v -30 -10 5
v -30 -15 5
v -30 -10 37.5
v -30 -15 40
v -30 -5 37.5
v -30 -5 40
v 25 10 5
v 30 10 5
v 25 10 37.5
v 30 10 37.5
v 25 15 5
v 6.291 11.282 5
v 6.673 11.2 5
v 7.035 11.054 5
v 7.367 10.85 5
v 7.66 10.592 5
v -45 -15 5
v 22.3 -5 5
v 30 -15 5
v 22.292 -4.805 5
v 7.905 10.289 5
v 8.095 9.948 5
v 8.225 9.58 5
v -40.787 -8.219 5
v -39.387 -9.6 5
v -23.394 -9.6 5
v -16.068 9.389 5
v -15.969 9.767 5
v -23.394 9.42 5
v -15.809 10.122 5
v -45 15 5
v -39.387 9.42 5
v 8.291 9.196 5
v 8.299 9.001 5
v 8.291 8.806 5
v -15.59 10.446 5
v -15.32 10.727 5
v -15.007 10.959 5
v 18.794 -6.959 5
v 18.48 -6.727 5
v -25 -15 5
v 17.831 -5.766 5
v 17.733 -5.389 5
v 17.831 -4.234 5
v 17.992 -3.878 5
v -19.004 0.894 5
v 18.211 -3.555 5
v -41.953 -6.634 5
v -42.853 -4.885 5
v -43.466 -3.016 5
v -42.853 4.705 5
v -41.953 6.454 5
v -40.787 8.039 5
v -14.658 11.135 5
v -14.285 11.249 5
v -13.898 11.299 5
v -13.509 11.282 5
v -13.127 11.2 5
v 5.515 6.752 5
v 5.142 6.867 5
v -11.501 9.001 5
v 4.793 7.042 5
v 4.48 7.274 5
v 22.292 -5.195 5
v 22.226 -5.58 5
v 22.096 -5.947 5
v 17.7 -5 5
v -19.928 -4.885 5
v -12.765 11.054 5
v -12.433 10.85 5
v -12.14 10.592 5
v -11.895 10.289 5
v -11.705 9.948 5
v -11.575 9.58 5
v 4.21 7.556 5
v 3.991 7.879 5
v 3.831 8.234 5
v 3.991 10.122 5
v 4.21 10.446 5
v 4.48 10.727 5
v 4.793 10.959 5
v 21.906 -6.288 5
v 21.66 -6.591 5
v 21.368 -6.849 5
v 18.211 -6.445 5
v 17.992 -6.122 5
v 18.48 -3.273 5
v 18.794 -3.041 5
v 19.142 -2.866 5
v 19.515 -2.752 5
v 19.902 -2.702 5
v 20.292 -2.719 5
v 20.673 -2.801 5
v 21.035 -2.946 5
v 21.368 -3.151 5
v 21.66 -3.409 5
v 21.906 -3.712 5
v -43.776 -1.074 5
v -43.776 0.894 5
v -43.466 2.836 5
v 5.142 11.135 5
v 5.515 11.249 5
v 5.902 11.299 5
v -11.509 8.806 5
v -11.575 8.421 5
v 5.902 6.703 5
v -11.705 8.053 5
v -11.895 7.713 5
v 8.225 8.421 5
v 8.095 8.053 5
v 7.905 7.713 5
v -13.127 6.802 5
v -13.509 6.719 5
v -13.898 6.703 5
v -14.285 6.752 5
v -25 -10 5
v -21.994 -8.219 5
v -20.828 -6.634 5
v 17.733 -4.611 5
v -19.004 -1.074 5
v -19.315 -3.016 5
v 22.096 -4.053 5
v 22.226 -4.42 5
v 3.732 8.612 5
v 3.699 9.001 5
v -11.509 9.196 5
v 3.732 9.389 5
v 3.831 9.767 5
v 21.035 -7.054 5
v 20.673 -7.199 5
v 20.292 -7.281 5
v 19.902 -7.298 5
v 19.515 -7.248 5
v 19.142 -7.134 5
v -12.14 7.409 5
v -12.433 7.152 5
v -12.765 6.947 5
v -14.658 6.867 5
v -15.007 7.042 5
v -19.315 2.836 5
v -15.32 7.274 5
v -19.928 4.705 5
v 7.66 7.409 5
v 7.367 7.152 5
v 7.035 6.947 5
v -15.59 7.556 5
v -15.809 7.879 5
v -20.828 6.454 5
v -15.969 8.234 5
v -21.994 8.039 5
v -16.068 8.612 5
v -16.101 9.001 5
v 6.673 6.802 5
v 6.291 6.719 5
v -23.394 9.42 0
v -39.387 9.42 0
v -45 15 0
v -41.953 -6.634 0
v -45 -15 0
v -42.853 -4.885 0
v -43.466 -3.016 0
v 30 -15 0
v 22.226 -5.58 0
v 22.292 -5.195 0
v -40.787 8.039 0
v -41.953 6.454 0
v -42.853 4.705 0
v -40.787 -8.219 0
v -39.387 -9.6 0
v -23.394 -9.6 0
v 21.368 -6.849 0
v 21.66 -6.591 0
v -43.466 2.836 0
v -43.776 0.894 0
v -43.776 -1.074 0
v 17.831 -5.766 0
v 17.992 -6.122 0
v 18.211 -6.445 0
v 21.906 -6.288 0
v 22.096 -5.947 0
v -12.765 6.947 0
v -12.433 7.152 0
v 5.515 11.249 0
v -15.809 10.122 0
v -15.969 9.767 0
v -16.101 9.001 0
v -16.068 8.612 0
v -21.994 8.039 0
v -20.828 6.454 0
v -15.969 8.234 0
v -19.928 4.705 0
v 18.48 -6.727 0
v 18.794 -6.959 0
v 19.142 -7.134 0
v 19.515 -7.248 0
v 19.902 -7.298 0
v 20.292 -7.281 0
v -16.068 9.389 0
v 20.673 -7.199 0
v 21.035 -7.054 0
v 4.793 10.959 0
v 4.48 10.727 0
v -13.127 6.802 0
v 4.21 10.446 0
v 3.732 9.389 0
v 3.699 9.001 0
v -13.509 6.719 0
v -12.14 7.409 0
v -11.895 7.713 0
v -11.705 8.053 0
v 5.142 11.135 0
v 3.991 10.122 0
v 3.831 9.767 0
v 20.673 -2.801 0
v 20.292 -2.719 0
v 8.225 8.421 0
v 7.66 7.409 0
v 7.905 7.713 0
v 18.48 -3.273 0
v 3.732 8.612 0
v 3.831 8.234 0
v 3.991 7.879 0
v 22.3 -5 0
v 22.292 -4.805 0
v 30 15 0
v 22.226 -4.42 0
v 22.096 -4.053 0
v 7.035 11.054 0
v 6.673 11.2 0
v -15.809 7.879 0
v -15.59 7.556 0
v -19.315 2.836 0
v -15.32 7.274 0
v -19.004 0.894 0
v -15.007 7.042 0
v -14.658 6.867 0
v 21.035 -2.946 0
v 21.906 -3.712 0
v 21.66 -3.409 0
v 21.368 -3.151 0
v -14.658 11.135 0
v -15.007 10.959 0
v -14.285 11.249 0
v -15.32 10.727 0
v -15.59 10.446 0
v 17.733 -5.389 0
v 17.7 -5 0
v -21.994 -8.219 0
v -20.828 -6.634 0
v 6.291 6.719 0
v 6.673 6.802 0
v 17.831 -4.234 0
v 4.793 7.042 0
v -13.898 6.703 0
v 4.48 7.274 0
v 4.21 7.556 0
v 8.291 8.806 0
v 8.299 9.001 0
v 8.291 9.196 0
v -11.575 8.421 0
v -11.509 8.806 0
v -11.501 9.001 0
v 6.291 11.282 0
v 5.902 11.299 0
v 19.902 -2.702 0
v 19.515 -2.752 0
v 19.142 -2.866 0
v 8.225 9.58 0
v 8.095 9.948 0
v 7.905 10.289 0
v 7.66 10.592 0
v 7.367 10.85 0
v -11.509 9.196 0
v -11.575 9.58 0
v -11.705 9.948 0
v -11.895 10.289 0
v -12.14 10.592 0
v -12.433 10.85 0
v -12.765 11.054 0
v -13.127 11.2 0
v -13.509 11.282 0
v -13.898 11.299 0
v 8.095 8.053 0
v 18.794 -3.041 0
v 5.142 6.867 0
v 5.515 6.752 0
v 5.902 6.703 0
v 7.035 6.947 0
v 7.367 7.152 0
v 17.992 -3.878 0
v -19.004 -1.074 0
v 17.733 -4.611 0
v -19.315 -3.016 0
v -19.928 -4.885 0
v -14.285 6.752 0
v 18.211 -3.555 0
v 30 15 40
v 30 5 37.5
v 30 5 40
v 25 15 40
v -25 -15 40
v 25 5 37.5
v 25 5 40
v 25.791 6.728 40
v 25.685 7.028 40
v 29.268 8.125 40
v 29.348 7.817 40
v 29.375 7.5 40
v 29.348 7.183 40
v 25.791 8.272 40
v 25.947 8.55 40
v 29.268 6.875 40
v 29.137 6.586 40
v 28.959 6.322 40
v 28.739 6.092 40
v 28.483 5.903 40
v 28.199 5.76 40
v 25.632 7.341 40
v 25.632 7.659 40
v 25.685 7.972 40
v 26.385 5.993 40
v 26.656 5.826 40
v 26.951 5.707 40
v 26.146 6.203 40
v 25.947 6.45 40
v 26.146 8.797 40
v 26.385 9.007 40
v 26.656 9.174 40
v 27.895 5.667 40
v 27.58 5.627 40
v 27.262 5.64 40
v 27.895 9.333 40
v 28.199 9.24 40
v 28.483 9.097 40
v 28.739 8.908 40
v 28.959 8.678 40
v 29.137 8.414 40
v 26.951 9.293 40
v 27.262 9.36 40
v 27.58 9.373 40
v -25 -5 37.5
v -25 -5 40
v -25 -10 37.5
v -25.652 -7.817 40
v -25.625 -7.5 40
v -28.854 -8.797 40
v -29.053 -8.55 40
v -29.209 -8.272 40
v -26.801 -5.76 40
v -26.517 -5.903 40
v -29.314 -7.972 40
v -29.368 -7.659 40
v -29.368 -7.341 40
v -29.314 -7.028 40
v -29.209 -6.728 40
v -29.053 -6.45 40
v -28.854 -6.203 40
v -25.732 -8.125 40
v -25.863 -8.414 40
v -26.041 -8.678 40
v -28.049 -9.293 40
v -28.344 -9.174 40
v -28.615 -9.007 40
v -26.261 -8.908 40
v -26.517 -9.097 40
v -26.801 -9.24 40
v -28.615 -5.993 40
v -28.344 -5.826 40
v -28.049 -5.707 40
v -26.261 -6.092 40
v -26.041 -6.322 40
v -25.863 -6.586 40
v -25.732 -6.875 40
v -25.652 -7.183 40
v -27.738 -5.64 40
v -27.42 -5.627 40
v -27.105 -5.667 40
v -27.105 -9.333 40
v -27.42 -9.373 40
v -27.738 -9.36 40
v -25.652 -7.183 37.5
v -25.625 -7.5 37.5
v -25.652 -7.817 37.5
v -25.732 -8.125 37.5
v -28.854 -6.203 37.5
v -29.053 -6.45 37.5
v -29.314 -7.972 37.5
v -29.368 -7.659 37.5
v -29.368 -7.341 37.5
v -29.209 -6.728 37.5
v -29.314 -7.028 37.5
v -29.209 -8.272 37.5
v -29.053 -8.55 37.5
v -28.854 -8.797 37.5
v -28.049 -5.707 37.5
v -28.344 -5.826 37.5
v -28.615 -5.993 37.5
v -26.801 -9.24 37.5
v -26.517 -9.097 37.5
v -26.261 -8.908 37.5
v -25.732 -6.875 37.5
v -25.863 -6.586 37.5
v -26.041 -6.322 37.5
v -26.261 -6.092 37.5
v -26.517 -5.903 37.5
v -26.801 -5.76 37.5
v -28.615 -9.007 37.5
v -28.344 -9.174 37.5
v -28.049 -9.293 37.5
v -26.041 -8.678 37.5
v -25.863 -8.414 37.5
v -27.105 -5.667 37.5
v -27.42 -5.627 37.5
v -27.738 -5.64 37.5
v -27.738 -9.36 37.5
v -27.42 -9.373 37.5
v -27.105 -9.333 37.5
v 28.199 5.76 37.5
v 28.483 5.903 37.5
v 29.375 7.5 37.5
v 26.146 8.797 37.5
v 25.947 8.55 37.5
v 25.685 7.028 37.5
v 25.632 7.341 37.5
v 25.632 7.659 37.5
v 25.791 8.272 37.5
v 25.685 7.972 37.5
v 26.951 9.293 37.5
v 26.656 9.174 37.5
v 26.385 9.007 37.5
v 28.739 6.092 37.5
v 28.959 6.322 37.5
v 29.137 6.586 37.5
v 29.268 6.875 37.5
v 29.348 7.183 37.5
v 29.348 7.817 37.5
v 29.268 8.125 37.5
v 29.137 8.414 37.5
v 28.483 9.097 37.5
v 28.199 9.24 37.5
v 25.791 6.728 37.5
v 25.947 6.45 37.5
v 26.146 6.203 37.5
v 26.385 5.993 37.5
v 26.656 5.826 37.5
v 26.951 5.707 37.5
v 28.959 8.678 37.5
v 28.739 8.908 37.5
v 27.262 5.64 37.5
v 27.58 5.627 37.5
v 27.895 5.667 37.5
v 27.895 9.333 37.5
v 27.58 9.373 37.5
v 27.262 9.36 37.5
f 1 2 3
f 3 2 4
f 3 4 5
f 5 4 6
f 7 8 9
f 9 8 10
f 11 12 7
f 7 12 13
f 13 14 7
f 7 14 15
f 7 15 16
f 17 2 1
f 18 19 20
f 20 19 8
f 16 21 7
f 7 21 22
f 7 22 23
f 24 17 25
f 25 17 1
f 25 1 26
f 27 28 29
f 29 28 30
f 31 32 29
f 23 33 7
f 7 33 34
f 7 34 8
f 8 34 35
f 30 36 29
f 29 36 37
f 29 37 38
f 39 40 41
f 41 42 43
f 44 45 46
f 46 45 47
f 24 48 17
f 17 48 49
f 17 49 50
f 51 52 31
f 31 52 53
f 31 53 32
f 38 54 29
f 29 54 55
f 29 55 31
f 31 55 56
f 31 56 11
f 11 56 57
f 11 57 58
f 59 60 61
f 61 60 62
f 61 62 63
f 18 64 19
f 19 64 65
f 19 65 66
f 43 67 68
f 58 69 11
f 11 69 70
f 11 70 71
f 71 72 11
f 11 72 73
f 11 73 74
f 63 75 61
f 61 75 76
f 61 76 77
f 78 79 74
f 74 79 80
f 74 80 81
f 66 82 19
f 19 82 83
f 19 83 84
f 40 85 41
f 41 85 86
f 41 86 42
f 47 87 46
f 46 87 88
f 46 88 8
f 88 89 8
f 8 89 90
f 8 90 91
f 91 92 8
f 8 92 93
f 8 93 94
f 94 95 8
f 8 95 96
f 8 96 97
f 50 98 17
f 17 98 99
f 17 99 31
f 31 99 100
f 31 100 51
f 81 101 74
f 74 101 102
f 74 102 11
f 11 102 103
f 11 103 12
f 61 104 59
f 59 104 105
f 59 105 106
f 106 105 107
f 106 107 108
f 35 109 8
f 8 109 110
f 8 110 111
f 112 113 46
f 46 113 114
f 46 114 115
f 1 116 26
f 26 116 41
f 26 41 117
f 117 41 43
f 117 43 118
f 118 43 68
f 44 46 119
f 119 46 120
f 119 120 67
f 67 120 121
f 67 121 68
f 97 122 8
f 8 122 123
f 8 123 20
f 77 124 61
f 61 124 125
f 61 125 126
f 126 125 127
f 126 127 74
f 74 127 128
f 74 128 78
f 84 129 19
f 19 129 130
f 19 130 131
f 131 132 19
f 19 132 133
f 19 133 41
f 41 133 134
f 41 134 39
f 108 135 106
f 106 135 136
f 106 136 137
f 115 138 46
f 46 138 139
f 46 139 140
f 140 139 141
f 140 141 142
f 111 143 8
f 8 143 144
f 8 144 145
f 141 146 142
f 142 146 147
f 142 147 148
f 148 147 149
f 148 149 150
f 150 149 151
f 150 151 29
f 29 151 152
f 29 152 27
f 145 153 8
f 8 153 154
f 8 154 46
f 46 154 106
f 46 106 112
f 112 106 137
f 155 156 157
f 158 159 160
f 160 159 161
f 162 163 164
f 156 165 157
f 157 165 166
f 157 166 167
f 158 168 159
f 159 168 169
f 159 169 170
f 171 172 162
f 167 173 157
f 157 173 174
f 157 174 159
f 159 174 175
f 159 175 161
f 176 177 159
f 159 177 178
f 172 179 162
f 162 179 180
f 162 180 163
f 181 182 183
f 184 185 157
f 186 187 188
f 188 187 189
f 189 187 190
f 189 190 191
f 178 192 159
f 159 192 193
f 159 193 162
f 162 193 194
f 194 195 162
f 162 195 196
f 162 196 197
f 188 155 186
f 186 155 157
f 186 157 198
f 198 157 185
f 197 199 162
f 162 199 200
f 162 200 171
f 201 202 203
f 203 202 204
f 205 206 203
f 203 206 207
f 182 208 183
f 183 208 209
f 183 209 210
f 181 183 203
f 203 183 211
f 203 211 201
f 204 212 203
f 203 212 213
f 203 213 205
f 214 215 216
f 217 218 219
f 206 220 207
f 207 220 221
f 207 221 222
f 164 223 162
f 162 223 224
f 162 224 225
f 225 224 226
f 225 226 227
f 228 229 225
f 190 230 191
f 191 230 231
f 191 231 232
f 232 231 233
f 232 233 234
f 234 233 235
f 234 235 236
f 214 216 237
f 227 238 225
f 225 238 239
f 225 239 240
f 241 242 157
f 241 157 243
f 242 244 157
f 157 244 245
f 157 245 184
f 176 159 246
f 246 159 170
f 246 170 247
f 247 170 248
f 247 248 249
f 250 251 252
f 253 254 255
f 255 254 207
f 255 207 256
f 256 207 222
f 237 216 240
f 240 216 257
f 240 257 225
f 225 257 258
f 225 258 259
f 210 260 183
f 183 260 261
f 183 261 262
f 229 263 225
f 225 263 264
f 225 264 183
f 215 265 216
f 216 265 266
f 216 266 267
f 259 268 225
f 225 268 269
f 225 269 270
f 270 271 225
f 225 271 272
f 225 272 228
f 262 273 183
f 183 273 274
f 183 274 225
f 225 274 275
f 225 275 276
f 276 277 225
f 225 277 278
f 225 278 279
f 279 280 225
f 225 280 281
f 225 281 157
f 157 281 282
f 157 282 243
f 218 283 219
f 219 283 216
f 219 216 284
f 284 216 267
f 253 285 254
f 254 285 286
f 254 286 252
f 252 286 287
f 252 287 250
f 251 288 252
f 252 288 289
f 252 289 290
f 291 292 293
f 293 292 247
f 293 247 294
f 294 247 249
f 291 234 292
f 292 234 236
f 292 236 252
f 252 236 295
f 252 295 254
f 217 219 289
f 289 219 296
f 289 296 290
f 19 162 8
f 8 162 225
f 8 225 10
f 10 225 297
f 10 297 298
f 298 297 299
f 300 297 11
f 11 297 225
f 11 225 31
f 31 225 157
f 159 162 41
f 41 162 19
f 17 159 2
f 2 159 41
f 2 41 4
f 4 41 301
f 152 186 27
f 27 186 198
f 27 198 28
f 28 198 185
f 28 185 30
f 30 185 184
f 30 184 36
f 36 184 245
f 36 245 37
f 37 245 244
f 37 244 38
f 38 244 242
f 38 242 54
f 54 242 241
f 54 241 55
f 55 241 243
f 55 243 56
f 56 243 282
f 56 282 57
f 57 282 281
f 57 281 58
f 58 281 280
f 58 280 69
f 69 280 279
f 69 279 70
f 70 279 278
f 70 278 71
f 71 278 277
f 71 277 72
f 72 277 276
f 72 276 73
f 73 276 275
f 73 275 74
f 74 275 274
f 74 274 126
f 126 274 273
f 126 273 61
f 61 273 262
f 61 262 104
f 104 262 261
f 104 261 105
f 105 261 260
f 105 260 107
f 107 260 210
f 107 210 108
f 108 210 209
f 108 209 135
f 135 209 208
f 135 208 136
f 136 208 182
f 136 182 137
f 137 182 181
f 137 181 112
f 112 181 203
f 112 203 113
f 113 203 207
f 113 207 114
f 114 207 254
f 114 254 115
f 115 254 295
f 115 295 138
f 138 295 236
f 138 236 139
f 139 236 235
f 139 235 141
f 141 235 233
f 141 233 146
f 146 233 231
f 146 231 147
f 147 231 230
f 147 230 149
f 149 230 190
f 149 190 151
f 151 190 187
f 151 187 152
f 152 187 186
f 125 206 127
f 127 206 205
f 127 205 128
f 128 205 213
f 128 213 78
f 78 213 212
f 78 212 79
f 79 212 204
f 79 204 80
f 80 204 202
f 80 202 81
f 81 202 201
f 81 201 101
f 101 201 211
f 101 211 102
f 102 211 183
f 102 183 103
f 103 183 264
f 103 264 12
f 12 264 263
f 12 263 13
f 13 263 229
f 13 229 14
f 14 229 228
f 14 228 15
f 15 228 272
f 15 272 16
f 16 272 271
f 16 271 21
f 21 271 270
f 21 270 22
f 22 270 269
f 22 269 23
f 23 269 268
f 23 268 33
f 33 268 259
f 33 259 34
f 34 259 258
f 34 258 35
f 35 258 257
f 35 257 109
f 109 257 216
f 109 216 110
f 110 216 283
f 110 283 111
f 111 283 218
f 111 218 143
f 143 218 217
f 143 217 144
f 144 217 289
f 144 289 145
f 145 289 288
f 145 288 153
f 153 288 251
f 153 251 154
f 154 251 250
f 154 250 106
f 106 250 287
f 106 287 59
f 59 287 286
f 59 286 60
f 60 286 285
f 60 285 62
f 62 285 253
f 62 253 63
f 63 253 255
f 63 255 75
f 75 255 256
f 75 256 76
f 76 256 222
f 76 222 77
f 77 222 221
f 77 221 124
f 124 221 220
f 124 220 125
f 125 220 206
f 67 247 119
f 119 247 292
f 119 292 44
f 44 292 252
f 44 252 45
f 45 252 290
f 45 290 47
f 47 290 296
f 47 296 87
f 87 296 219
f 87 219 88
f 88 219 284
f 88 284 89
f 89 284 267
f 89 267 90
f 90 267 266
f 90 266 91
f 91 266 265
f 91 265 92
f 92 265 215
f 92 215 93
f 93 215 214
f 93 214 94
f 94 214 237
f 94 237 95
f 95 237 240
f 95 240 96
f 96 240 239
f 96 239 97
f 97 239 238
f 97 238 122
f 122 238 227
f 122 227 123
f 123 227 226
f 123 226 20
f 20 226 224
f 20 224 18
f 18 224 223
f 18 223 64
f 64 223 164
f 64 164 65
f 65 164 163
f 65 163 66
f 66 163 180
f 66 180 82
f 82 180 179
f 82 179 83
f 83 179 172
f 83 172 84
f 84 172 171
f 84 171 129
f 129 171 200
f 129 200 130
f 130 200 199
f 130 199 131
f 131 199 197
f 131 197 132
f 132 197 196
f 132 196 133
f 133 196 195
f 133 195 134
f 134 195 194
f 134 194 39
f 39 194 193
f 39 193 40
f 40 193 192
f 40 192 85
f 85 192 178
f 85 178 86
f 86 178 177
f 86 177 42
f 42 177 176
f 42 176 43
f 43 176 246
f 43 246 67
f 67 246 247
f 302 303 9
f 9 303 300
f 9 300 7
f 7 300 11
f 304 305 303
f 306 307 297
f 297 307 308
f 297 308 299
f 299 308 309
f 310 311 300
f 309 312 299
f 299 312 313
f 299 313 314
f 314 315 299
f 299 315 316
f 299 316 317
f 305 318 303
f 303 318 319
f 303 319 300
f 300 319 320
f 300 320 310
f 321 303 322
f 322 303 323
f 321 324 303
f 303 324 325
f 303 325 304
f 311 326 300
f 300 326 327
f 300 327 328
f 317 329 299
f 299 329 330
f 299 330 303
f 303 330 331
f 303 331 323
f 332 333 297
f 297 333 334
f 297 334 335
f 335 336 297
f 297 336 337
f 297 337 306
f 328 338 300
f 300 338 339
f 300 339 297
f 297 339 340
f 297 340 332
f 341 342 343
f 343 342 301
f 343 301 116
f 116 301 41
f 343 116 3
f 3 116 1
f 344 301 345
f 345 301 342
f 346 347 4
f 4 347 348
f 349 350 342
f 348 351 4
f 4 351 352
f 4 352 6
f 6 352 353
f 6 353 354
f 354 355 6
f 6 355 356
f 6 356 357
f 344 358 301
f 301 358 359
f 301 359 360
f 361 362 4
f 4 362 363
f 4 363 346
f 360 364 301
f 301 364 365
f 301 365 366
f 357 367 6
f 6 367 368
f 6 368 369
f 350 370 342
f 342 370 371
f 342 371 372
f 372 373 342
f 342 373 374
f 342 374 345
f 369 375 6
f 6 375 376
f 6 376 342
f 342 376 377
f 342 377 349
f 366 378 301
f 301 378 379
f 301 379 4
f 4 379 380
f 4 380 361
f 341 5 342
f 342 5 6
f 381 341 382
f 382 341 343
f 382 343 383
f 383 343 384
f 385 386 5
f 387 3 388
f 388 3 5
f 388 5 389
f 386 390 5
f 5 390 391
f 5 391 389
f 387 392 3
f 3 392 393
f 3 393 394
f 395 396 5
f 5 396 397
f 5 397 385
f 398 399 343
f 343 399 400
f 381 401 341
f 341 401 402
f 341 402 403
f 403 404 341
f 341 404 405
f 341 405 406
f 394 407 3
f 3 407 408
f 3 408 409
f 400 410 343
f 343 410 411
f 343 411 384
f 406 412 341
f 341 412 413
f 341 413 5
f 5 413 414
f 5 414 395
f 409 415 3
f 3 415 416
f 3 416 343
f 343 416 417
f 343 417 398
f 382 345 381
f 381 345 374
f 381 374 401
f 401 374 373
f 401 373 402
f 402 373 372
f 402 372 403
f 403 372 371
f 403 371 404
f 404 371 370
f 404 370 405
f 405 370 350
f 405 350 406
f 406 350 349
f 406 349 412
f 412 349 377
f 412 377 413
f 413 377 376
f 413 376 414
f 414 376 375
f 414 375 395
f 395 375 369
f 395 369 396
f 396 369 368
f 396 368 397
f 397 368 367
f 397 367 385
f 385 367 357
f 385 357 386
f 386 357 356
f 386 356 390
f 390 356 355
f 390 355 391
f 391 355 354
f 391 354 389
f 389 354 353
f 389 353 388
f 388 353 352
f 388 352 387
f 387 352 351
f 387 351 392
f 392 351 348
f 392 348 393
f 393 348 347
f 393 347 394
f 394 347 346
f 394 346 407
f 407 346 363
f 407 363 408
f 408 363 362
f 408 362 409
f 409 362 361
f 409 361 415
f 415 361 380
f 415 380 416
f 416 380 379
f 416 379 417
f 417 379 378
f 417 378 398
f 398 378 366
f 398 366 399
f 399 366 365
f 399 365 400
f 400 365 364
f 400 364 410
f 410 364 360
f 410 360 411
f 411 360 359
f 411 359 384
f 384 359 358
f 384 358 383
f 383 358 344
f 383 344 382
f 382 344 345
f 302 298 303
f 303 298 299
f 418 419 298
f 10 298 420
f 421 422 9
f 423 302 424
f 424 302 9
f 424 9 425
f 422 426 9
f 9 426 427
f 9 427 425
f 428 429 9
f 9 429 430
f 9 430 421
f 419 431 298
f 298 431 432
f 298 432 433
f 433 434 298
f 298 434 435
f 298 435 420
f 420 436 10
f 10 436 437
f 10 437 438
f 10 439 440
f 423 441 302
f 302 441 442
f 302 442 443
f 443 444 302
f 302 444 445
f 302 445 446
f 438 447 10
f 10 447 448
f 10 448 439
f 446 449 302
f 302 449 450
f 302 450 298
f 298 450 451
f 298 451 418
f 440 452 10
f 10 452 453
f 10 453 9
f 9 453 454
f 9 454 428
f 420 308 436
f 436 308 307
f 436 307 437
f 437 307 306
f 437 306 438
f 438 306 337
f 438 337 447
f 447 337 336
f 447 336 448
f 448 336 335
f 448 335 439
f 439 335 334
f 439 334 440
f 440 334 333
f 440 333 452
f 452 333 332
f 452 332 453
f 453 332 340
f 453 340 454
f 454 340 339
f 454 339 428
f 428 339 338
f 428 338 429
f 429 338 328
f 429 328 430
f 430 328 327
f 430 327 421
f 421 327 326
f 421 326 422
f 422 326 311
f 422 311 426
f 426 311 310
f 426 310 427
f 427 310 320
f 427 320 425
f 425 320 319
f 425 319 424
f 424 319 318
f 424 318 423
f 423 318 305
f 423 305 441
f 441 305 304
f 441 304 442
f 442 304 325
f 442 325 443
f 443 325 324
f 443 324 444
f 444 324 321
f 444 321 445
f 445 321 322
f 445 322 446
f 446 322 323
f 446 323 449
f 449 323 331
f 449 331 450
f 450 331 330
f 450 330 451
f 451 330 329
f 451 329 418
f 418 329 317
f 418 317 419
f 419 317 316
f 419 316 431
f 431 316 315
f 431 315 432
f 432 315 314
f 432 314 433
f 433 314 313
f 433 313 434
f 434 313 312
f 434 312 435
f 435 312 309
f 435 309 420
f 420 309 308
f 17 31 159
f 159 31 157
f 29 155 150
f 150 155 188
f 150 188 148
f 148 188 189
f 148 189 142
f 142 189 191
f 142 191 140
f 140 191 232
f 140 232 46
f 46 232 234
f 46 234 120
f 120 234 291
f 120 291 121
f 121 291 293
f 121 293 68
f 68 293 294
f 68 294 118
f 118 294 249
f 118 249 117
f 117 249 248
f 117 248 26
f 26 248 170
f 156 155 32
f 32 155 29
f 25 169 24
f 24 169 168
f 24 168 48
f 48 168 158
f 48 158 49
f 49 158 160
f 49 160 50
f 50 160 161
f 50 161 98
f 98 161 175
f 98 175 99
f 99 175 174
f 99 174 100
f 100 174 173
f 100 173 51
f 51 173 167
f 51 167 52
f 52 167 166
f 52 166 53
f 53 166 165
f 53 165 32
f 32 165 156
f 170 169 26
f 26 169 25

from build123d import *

# Parameters (mm, degrees)
SKETCH1_W           = 60
SKETCH1_H           = 30
SKETCH1_R           = 2.3
BOSS_EXTRUDE1_DEPTH = 5
SKETCH3_W           = 5
SKETCH3_H           = 5
BOSS_EXTRUDE2_DEPTH = 35
SKETCH5_W           = 5
SKETCH5_H           = 5
SKETCH5_R           = 1.875
BOSS_EXTRUDE3_DEPTH = 2.5
SKETCH6_W           = 5
SKETCH6_H           = 30
BOSS_EXTRUDE4_DEPTH = 15
CUT_EXTRUDE1_REACH  = 64.048


with BuildPart() as part:
    # Sketch1 → Boss-Extrude1 (new body)
    with BuildSketch(Plane.XY):
        Rectangle(SKETCH1_W, SKETCH1_H)
        with Locations((-13.800714267, 9.000714267)):
            Circle(SKETCH1_R, mode=Mode.SUBTRACT)
        with Locations((5.999285733, 9.000714267)):
            Circle(SKETCH1_R, mode=Mode.SUBTRACT)
        with Locations((20, -5)):
            Circle(SKETCH1_R, mode=Mode.SUBTRACT)
    extrude(amount=BOSS_EXTRUDE1_DEPTH)

    # Sketch3 → Boss-Extrude2 (add)
    with BuildSketch(Plane.XY.offset(5)):
        with Locations((27.5, 12.5)):
            Rectangle(SKETCH3_W, SKETCH3_H)
        with Locations((-27.5, -12.5)):
            Rectangle(SKETCH3_W, SKETCH3_H)
    extrude(amount=BOSS_EXTRUDE2_DEPTH)

    # Sketch5 → Boss-Extrude3 (add)
    # profile 1 of 2: a face of its own
    with BuildSketch(Plane.XY.offset(40)):
        with Locations((-27.5, -7.5)):
            Rectangle(SKETCH5_W, SKETCH5_H)
        with Locations((-27.5, -7.5)):
            Circle(SKETCH5_R, mode=Mode.SUBTRACT)
    # profile 2 of 2: a face of its own
    with BuildSketch(Plane.XY.offset(40)):
        with Locations((27.5, 7.5)):
            Rectangle(SKETCH5_W, SKETCH5_H)
        with Locations((27.5, 7.5)):
            Circle(SKETCH5_R, mode=Mode.SUBTRACT)
    extrude(amount=-BOSS_EXTRUDE3_DEPTH)

    # Sketch6 → Boss-Extrude4 (add)
    with BuildSketch(Plane.ZY.offset(30)):
        with Locations((2.5, 0)):
            Rectangle(SKETCH6_W, SKETCH6_H)
    extrude(amount=BOSS_EXTRUDE4_DEPTH)

    # Sketch7 → Cut-Extrude1 (cut, up to next)
    with BuildSketch(Plane(origin=(0, 0, 0), x_dir=(-1, 0, 0), z_dir=(0, 0, -1)), mode=Mode.PRIVATE) as cut_extrude1_sk1:
        with BuildLine():
            Line((23.394171206, 9.42), (39.386735103, 9.42))
            ThreePointArc((39.386735103, 9.42), (43.815453154, -0.09), (39.386735103, -9.6))
            Line((39.386735103, -9.6), (23.394171206, -9.6))
            ThreePointArc((23.394171206, -9.6), (18.965453154, -0.09), (23.394171206, 9.42))
        make_face()
    cut_extrude1_tool1 = extrude(cut_extrude1_sk1.sketch, amount=-CUT_EXTRUDE1_REACH, mode=Mode.PRIVATE) & part.part
    add(cut_extrude1_tool1.solids().sort_by_distance((-31.390453, -0.09, 0))[0], mode=Mode.SUBTRACT)


solid = part.part
